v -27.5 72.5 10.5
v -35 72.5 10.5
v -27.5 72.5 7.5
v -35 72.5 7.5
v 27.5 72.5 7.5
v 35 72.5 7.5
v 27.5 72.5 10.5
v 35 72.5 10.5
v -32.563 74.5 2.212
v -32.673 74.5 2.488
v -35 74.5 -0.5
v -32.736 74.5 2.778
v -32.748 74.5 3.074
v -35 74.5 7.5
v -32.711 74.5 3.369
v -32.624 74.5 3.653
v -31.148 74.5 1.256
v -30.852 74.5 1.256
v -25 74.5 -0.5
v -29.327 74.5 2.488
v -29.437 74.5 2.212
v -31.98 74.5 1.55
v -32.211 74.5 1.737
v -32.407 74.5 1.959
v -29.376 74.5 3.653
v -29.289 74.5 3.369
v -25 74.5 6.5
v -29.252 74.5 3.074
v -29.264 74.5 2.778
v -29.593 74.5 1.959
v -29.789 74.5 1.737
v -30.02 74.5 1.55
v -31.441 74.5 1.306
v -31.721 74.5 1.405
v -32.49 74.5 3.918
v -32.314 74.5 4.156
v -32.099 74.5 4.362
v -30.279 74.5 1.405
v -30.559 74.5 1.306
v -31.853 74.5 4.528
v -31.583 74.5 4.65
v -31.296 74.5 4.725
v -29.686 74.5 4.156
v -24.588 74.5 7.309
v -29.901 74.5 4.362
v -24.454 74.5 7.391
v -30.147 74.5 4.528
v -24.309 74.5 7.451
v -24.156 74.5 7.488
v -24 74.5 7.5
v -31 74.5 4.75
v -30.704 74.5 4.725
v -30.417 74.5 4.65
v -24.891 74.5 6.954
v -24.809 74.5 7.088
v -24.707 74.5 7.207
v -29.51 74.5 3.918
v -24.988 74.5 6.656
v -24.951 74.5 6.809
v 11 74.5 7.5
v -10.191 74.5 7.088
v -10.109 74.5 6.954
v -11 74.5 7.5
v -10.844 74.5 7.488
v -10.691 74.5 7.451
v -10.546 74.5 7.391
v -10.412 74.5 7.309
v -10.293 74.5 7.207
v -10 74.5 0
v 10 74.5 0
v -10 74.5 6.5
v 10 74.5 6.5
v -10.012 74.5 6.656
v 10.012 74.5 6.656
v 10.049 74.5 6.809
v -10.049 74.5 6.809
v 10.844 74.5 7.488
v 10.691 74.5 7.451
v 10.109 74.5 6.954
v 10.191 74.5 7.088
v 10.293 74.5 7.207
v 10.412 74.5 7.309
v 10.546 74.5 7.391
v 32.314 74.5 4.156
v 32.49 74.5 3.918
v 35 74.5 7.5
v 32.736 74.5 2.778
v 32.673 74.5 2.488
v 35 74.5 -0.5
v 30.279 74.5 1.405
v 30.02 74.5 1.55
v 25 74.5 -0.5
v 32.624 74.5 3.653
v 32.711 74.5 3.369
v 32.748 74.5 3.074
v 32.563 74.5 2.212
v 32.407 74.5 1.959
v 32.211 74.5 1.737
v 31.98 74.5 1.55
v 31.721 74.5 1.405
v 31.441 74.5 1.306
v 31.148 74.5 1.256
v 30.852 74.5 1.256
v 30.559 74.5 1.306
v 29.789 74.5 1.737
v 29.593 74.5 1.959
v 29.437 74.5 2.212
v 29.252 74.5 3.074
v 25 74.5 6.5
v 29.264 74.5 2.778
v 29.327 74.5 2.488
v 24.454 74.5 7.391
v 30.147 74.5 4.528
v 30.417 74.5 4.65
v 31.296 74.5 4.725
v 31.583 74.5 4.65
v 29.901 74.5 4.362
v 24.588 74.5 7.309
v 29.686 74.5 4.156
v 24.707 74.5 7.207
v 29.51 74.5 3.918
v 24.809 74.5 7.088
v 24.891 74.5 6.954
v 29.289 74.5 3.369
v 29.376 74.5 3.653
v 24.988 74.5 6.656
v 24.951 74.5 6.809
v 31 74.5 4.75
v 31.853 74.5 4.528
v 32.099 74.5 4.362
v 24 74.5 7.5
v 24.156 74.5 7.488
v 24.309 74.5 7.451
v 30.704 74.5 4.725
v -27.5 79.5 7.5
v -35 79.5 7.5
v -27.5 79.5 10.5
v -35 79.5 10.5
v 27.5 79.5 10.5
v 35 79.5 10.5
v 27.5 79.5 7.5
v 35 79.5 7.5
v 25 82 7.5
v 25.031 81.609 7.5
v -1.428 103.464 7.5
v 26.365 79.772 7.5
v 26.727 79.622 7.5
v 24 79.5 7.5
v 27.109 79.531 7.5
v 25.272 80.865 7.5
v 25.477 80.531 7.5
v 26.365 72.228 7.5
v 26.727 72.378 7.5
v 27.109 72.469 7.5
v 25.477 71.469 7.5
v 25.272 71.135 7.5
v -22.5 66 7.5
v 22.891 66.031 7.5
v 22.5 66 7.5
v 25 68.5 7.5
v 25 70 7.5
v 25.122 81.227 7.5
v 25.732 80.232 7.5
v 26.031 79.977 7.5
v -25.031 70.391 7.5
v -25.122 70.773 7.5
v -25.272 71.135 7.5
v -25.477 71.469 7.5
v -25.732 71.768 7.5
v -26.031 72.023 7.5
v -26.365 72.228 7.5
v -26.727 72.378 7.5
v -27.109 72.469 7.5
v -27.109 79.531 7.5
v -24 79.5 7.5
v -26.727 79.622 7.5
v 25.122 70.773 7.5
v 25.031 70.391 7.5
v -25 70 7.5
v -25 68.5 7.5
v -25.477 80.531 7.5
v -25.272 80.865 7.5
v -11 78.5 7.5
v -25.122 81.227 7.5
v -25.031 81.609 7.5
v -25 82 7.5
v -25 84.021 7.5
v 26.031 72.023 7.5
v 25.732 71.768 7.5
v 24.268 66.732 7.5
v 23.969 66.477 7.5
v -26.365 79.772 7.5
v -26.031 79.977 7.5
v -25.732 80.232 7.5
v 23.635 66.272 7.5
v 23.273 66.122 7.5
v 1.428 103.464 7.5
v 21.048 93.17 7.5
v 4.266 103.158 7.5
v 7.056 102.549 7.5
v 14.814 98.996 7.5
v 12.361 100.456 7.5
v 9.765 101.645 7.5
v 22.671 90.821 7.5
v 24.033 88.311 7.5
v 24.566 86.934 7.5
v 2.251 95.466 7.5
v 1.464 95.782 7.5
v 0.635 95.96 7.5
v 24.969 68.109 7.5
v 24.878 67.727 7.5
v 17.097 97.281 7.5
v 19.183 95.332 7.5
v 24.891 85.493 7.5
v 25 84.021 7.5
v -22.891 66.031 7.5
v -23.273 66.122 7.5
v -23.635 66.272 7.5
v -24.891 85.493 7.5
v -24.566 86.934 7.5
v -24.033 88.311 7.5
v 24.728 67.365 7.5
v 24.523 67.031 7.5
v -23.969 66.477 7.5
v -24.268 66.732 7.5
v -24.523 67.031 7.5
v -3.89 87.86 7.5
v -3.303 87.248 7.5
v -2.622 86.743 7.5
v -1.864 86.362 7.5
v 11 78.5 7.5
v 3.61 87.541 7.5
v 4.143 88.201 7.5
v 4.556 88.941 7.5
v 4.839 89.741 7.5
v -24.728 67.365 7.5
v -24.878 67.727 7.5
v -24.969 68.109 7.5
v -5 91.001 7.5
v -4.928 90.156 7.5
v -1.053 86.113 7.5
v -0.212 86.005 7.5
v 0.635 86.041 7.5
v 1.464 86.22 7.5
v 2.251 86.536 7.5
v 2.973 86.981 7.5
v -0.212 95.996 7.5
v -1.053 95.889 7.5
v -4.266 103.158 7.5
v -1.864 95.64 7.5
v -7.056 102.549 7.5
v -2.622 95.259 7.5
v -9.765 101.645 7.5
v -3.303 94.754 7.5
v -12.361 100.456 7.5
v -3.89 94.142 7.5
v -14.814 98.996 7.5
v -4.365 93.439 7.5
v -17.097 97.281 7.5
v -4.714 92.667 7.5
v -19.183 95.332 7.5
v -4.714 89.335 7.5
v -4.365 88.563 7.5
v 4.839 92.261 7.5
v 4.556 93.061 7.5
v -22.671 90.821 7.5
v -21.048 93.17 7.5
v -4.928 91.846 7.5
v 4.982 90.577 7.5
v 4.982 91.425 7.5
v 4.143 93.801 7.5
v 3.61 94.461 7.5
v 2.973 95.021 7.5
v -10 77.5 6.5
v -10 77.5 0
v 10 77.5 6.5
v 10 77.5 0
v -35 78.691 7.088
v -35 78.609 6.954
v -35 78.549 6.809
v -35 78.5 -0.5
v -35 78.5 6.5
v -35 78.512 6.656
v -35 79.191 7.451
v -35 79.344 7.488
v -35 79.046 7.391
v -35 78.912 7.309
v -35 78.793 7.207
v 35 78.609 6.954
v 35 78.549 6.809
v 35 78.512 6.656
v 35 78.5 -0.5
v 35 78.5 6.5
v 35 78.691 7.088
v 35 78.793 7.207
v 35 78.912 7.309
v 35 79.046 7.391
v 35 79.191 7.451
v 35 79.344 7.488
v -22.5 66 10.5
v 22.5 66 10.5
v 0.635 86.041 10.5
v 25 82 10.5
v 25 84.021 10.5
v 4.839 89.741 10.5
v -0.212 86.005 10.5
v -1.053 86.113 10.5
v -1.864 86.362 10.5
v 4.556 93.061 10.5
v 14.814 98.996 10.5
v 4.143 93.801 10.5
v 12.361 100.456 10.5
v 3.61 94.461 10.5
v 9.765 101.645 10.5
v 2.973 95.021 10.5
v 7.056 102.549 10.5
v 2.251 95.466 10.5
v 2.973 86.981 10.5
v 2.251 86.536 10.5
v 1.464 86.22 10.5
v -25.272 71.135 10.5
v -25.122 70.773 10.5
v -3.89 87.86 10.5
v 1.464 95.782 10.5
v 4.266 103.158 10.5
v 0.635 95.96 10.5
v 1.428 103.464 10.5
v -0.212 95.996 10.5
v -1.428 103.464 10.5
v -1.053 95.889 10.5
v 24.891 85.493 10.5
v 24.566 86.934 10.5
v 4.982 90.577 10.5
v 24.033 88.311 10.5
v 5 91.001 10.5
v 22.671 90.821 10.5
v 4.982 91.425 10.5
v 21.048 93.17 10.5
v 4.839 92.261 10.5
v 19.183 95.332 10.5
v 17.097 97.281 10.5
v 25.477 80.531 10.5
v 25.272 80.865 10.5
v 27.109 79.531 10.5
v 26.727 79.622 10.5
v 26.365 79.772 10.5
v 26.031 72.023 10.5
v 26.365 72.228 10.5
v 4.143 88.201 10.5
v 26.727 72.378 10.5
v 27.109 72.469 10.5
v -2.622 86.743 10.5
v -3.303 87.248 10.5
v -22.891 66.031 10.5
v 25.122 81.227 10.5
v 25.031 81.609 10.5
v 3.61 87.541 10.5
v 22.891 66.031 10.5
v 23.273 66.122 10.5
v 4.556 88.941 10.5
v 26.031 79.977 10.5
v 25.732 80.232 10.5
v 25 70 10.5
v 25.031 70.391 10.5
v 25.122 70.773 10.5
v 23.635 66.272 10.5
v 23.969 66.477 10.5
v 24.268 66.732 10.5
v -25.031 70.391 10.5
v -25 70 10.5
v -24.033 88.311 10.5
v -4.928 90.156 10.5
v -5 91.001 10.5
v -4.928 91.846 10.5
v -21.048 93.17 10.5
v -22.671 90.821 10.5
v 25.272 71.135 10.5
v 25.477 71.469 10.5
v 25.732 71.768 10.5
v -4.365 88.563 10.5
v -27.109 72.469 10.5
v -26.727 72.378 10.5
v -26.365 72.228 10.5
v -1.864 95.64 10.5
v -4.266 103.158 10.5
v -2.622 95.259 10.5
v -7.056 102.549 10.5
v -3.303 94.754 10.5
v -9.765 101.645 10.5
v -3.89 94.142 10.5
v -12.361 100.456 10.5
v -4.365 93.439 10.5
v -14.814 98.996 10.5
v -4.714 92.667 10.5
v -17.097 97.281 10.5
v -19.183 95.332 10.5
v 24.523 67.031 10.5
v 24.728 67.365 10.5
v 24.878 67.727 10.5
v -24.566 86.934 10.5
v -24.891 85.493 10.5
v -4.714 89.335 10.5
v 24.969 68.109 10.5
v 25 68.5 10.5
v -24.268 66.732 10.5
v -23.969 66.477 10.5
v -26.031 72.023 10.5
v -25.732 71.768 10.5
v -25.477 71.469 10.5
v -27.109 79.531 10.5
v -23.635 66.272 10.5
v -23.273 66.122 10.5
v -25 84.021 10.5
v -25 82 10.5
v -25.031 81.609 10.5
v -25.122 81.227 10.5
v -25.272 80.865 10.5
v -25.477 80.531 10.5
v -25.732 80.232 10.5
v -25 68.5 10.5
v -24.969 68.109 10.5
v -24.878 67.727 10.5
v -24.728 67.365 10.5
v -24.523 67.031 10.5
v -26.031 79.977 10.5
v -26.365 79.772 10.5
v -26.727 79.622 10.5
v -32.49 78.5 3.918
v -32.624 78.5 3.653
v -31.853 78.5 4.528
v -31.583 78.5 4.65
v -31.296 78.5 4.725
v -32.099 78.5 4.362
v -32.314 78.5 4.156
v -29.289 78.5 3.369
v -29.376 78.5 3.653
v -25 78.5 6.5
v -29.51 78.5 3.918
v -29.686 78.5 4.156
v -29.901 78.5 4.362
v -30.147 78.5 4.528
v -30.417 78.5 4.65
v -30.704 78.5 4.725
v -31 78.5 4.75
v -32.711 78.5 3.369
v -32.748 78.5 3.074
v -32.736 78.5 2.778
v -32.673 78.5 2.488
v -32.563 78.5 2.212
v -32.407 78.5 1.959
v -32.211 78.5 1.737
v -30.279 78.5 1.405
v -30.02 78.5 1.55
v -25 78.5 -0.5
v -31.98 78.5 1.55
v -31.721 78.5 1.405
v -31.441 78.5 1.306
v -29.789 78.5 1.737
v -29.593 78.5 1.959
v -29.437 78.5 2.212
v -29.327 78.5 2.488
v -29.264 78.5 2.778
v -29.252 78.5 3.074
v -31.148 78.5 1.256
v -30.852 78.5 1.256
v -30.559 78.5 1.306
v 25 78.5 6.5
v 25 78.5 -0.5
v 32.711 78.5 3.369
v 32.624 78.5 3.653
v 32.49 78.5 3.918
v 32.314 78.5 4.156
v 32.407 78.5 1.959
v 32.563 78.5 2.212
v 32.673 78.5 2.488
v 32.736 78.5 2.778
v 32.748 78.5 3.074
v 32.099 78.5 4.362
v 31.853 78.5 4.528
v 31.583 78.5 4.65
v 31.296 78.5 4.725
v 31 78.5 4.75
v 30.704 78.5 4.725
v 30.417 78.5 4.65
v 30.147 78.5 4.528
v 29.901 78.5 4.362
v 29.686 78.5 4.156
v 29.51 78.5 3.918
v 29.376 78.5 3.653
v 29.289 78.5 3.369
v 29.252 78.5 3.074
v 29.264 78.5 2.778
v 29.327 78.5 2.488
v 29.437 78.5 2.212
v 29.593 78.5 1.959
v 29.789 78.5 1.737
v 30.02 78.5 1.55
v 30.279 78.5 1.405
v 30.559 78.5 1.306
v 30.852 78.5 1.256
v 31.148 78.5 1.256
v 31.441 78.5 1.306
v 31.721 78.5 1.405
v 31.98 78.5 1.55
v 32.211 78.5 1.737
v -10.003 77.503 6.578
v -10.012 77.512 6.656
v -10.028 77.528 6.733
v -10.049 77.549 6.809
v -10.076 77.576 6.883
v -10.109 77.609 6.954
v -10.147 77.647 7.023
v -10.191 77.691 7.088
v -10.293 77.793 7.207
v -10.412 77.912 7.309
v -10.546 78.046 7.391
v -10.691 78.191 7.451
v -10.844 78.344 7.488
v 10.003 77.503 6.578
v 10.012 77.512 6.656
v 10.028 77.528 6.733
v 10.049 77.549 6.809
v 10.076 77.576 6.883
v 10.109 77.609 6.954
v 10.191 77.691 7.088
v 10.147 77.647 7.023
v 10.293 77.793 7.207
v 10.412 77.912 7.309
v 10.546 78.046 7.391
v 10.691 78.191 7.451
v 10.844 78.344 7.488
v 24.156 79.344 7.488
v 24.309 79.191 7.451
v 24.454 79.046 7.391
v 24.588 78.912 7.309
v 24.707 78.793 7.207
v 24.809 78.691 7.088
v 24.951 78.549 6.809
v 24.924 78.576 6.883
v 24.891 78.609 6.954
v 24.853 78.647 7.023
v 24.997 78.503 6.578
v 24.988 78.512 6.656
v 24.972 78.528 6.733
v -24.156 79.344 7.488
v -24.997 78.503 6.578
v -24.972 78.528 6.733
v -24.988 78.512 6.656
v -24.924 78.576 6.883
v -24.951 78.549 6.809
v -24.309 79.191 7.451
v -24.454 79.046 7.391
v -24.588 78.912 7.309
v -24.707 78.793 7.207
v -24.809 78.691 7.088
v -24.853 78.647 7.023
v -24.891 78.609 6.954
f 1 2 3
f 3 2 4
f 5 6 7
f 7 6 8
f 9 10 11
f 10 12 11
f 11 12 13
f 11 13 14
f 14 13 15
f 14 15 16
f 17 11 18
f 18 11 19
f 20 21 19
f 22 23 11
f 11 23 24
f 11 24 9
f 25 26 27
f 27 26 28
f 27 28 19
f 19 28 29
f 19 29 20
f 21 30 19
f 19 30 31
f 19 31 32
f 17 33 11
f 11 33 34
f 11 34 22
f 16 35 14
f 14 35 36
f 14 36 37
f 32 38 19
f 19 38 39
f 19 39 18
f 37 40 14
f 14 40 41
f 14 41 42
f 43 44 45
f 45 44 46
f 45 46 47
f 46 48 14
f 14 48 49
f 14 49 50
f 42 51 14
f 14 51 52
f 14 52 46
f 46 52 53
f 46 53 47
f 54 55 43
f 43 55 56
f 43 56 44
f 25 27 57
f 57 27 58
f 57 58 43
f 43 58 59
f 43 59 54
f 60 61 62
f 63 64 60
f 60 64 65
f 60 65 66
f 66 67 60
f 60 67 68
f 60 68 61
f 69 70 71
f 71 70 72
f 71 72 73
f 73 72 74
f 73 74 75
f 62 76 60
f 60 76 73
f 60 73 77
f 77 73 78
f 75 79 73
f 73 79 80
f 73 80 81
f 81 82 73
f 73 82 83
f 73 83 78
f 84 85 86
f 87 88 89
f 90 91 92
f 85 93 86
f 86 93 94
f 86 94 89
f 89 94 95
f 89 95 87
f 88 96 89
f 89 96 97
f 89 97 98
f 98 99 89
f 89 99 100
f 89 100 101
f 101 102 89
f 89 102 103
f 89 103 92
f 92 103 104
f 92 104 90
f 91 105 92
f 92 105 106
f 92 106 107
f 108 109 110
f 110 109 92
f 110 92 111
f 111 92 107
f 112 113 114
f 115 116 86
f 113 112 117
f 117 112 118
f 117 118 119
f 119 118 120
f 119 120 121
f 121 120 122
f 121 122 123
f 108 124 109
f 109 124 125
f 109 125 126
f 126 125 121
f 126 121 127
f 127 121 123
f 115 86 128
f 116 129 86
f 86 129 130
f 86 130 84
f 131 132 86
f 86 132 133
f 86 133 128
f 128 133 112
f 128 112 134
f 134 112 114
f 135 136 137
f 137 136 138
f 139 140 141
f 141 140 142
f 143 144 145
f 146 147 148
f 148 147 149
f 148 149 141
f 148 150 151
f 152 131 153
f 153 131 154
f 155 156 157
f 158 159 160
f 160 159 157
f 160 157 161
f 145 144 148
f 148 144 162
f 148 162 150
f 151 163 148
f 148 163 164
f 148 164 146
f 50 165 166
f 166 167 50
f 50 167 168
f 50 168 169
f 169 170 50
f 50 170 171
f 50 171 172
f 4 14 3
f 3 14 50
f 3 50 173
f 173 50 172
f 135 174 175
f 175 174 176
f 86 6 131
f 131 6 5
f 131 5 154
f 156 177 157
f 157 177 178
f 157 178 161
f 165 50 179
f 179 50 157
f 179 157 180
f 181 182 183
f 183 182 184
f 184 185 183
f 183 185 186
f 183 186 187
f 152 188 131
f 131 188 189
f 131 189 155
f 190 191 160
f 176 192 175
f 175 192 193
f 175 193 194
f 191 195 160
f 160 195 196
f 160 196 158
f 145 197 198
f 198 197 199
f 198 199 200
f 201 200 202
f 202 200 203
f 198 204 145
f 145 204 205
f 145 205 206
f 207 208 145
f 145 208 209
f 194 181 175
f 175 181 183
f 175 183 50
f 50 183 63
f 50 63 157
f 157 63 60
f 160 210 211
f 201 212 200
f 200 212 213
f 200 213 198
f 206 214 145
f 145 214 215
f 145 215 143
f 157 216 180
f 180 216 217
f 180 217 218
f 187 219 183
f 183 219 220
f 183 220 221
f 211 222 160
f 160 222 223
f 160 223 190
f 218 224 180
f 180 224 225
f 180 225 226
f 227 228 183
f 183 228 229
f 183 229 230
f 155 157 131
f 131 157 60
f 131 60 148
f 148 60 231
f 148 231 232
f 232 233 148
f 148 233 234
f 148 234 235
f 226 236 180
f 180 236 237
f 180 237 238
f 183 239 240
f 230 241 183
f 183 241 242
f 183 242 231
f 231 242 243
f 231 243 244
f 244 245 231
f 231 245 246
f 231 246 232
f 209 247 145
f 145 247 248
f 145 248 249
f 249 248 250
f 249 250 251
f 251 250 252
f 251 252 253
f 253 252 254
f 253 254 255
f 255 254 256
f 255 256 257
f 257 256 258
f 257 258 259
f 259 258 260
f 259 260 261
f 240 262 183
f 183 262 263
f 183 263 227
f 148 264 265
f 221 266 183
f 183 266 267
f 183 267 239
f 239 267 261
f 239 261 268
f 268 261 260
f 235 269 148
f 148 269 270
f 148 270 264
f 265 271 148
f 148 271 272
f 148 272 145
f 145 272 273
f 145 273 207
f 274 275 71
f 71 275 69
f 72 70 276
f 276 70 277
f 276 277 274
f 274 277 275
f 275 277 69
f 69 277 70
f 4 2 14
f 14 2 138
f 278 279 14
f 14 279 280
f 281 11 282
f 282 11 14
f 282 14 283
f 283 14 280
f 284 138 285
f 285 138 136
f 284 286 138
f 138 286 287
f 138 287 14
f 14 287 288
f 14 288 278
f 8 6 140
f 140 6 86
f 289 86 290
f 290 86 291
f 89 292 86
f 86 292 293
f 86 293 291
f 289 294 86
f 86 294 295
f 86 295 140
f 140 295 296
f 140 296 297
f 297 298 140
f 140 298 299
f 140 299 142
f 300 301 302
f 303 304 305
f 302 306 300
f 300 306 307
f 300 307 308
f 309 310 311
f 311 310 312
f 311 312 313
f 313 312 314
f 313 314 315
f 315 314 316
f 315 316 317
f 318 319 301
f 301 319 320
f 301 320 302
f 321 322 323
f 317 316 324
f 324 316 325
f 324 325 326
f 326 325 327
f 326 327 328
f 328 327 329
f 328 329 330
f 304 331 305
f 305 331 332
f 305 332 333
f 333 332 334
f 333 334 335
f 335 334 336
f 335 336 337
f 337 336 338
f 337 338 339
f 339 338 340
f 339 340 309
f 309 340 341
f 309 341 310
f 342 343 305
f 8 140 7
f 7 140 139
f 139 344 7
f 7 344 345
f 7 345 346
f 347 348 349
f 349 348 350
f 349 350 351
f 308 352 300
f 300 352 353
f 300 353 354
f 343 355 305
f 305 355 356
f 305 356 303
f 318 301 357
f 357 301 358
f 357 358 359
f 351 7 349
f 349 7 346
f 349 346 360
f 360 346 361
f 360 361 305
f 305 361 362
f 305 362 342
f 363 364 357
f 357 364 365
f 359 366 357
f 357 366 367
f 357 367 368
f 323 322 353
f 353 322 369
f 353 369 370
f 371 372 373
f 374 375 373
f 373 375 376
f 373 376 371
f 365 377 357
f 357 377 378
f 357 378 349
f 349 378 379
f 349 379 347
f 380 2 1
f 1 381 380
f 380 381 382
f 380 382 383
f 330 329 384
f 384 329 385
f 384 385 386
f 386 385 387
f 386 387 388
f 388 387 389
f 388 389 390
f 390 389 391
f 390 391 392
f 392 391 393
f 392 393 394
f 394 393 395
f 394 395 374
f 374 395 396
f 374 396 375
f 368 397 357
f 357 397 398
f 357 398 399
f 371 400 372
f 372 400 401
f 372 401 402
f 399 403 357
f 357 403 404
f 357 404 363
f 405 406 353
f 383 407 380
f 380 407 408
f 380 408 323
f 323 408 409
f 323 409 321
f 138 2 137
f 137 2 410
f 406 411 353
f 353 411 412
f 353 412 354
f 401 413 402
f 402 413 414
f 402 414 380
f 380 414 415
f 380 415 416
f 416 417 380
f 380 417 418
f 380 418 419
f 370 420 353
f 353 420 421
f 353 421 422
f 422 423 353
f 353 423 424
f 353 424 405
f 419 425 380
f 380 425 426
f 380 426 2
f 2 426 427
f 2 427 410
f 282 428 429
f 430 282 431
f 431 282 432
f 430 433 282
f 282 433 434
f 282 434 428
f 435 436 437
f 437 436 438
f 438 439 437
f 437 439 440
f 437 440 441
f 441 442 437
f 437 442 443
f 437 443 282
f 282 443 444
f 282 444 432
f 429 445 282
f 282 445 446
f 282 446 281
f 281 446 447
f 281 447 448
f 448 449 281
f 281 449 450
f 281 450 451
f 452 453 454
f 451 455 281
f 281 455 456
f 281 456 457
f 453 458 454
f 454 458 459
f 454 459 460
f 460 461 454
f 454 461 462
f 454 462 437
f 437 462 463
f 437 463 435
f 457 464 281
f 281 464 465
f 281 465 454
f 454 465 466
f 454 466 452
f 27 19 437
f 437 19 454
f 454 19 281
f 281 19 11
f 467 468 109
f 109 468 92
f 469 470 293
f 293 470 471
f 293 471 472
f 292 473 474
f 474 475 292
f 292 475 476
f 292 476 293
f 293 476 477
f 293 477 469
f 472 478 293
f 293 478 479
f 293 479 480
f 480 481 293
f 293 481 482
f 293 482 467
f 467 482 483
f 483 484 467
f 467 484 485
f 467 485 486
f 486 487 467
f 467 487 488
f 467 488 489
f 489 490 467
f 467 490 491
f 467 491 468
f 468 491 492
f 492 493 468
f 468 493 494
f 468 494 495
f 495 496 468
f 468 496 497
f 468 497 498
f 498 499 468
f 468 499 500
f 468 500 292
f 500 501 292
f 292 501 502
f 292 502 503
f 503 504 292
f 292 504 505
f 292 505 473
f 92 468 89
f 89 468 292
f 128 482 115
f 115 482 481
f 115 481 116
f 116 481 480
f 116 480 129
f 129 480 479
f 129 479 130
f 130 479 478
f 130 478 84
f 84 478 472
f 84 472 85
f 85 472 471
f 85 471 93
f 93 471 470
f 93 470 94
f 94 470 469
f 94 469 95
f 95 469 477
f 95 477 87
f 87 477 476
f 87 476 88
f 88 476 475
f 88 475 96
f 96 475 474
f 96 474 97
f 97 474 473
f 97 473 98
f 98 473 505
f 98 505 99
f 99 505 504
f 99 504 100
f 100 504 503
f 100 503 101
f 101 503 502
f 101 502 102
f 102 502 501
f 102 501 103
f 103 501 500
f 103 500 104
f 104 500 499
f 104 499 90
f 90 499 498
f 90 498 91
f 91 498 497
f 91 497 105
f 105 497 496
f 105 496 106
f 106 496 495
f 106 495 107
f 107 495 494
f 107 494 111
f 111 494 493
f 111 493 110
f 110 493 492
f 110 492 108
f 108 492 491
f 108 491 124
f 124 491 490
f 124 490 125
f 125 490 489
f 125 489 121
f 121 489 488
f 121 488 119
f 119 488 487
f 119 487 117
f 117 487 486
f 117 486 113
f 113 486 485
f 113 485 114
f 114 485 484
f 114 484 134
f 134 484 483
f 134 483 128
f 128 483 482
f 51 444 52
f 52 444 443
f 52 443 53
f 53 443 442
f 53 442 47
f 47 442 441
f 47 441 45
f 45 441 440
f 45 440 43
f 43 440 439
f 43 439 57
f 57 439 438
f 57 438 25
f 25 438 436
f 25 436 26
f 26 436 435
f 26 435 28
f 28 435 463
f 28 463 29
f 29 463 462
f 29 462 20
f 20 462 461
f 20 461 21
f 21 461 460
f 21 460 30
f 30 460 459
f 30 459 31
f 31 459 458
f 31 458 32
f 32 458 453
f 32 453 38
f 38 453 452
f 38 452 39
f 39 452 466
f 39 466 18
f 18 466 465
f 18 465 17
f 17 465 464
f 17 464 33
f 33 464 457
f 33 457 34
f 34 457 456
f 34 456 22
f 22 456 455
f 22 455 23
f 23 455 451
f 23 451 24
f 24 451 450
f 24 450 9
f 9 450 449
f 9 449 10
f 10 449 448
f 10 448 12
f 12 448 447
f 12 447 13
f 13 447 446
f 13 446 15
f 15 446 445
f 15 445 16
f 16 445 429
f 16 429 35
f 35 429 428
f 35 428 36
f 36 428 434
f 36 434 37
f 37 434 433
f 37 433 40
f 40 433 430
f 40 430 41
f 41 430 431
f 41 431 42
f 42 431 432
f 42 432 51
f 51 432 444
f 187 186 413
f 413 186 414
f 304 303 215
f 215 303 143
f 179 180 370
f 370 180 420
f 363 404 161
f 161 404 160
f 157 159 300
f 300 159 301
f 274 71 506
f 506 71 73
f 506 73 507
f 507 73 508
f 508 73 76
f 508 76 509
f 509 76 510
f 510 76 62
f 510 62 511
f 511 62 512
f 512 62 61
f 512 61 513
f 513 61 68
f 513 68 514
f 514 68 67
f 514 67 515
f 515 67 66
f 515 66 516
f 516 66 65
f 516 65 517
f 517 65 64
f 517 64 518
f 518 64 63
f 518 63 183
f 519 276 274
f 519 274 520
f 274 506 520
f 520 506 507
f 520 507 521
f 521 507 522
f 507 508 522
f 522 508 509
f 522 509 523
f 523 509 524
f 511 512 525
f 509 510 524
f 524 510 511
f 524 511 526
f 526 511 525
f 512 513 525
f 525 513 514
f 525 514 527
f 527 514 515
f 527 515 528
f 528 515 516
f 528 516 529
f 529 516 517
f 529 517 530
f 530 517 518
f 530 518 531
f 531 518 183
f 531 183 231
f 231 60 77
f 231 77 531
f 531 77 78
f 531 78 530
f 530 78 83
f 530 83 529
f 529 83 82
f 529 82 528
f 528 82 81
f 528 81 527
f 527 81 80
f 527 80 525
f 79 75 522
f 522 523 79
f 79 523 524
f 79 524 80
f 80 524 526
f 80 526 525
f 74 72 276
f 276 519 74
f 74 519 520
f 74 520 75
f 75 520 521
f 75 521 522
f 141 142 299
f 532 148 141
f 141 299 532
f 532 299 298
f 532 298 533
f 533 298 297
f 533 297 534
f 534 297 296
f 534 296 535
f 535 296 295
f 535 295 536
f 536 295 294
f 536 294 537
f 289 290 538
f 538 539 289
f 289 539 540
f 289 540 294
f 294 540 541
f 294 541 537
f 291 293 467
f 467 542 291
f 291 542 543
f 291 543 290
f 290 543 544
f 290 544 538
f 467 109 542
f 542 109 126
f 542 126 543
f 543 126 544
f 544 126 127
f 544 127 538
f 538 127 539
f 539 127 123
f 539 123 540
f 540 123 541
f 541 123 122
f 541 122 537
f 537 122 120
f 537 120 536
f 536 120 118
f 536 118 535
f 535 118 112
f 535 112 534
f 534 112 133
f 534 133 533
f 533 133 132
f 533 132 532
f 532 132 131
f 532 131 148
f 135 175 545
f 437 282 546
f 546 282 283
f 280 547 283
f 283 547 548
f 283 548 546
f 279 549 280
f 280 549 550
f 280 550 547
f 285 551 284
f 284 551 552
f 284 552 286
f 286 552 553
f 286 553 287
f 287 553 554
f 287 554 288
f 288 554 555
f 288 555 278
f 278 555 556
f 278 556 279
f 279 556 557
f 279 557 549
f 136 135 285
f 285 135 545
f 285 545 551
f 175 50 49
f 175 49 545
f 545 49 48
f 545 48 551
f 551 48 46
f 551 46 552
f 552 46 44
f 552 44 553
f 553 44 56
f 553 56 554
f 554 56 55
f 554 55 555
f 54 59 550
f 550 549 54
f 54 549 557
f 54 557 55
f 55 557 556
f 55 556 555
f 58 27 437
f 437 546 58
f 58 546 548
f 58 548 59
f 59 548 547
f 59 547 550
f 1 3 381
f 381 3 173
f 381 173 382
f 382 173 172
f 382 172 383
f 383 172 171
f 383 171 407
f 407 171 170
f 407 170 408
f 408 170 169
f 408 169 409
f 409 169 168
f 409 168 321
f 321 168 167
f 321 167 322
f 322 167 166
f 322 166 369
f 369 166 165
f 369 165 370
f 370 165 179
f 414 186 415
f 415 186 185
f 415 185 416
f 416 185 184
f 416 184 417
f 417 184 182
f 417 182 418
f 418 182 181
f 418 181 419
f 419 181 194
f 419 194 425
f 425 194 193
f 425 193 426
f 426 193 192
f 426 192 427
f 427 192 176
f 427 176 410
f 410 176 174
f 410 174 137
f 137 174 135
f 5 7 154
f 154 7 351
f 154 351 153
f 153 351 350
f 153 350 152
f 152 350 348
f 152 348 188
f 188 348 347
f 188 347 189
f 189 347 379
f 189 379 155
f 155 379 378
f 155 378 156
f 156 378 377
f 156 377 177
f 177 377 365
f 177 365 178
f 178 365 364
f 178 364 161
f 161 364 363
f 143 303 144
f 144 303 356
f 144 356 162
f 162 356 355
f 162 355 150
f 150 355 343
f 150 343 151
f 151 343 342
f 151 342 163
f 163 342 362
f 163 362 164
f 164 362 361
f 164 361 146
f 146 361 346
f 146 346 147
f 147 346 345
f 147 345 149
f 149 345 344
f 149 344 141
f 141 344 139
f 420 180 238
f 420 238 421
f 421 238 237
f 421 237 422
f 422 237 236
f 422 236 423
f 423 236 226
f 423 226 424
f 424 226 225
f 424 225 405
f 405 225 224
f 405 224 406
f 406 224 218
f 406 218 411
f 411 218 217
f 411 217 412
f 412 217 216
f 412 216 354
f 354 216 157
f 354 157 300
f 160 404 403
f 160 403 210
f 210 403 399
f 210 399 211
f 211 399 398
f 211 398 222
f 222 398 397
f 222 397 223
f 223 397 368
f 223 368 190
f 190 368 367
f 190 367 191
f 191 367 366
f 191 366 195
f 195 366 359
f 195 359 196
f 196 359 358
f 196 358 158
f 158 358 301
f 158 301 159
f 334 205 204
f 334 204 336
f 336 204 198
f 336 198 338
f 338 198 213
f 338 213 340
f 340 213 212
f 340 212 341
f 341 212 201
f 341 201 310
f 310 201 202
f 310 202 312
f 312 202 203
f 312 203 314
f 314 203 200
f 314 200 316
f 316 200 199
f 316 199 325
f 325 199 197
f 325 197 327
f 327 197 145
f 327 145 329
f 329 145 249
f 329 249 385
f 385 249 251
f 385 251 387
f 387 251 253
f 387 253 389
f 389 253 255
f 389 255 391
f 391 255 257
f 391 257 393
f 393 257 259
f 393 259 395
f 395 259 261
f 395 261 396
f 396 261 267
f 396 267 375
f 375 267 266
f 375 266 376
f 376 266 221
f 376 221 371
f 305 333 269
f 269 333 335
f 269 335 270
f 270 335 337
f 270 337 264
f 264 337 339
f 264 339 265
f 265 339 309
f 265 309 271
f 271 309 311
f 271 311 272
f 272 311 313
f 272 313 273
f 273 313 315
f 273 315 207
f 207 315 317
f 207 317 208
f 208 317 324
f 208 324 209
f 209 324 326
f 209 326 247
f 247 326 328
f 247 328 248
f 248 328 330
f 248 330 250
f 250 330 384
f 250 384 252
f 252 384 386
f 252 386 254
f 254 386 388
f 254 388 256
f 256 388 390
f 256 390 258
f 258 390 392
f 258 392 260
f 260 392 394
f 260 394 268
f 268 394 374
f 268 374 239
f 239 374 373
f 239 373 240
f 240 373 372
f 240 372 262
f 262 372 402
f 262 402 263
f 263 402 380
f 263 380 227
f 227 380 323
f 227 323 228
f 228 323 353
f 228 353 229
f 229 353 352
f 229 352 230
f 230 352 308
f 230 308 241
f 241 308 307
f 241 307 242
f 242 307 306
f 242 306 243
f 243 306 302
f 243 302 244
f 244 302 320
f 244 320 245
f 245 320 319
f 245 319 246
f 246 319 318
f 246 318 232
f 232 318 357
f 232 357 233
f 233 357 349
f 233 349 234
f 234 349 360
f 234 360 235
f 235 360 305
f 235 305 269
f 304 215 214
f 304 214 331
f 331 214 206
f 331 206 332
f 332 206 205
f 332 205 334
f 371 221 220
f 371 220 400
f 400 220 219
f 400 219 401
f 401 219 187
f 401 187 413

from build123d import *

# Parameters (mm, degrees)
SKETCH1_W           = 20
SKETCH1_H           = 155
BOSS_EXTRUDE1_DEPTH = 4
SKETCH2_W           = 20
SKETCH2_H           = 4
BOSS_EXTRUDE3_DEPTH = 50
RIB2_REACH          = 96.986
SKETCH7_WALL_W      = 290.205463948
SKETCH7_WALL_H      = 4
SKETCH8_W           = 20
SKETCH8_H           = 3
BOSS_EXTRUDE4_DEPTH = 3.5
SKETCH9_W           = 70
SKETCH9_H           = 5
BOSS_EXTRUDE6_DEPTH = 3
SKETCH10_W          = 10
SKETCH10_H          = 4
BOSS_EXTRUDE7_DEPTH = 8
SKETCH12_R          = 1.75
CUT_EXTRUDE1_DEPTH  = 10
SKETCH13_W          = 111.319070758
SKETCH13_H          = 99.743885808
CUT_EXTRUDE2_DEPTH  = 152
SKETCH14_W          = 50
SKETCH14_H          = 3
BOSS_EXTRUDE8_DEPTH = 6.5
FILLET1_R           = 1
FILLET2_R           = 2.5
SKETCH15_R          = 5
BOSS_EXTRUDE9_DEPTH = 3
FILLET3_R           = 10


with BuildPart() as part:
    # Sketch1 → Boss-Extrude1 (new body)
    with BuildSketch(Plane.XY):
        Rectangle(SKETCH1_W, SKETCH1_H)
    extrude(amount=BOSS_EXTRUDE1_DEPTH)

    # Sketch2 → Boss-Extrude3 (add)
    with BuildSketch(Plane.XY.offset(4)):
        with Locations((0, -75.5)):
            Rectangle(SKETCH2_W, SKETCH2_H)
    extrude(amount=BOSS_EXTRUDE3_DEPTH)

    # Sketch7 wall → Rib2 (add, up to next)
    with BuildSketch(Plane(origin=(0, -26, 16.5), x_dir=(0, 0.967074537263, -0.25449329928), z_dir=(0, 0.25449329928, 0.967074537263)), mode=Mode.PRIVATE) as rib2_sk1:
        Rectangle(SKETCH7_WALL_W, SKETCH7_WALL_H)
    rib2_tool1 = extrude(rib2_sk1.sketch, amount=-RIB2_REACH, mode=Mode.PRIVATE) - part.part
    add(rib2_tool1.solids().sort_by_distance((0, -26, 16.5))[0])

    # Sketch8 → Boss-Extrude4 (add)
    with BuildSketch(Plane.XY.offset(4)):
        with Locations((0, 76)):
            Rectangle(SKETCH8_W, SKETCH8_H)
    extrude(amount=BOSS_EXTRUDE4_DEPTH)

    # Sketch9 → Boss-Extrude6 (add)
    with BuildSketch(Plane.XY.offset(7.5)):
        with Locations((0, 77)):
            Rectangle(SKETCH9_W, SKETCH9_H)
    boss_extrude6 = extrude(amount=BOSS_EXTRUDE6_DEPTH)

    # Sketch10 → Boss-Extrude7 (add)
    with BuildSketch(Plane(origin=(0, 0, 7.5), x_dir=(-1, 0, 0), z_dir=(0, 0, -1))):
        with Locations((30, 76.5)):
            Rectangle(SKETCH10_W, SKETCH10_H)
        with Locations((-30, 76.5)):
            Rectangle(SKETCH10_W, SKETCH10_H)
    extrude(amount=BOSS_EXTRUDE7_DEPTH)

    # Sketch12 → Cut-Extrude1 (cut)
    with BuildSketch(Plane(origin=(0, 78.5, 0), x_dir=(1, 0, 0), z_dir=(0, 1, 0))):
        with Locations(Location((-31, -3, 0), (0, 0, 270))):
            Circle(SKETCH12_R)
        with Locations(Location((31, -3, 0), (0, 0, 270))):
            Circle(SKETCH12_R)
    extrude(amount=-CUT_EXTRUDE1_DEPTH, mode=Mode.SUBTRACT)

    # Sketch13 → Cut-Extrude2 (cut)
    with BuildSketch(Plane.XZ.offset(77.5)):
        with Locations((2.652852139, 20.474703111)):
            Rectangle(SKETCH13_W, SKETCH13_H)
    extrude(amount=-CUT_EXTRUDE2_DEPTH, mode=Mode.SUBTRACT)

    # Sketch14 → Boss-Extrude8 (add)
    with BuildSketch(Plane(origin=(0, 79.5, 0), x_dir=(1, 0, 0), z_dir=(0, 1, 0))):
        with Locations((0, -9)):
            Rectangle(SKETCH14_W, SKETCH14_H)
    boss_extrude8 = extrude(amount=BOSS_EXTRUDE8_DEPTH)

    # Mirror1: Boss-Extrude6, Boss-Extrude8 across plane
    add(boss_extrude6.mirror(Plane(origin=(0, 76, 0), x_dir=(0, 0, 1), z_dir=(0, -1, 0))))
    add(boss_extrude8.mirror(Plane(origin=(0, 76, 0), x_dir=(0, 0, 1), z_dir=(0, -1, 0))))

    # Fillet1
    fillet1_edges = [part.edges().sort_by_distance(p)[0] for p in [
        (30, 78.5, 7.5),
        (-30, 78.5, 7.5),
        (10, 76, 7.5),
        (-10, 76, 7.5),
        (0, 77.5, 7.5),
        (25, 76.5, 7.5),
        (-25, 76.5, 7.5),
    ]]
    fillet(fillet1_edges, radius=FILLET1_R - 0.0001)  # a hair under: the kernel refuses the full size

    # Fillet2
    fillet2_edges = [part.edges().sort_by_distance(p)[0] for p in [
        (-25, 79.5, 9),
        (25, 79.5, 9),
        (-25, 66, 9),
        (25, 66, 9),
        (-25, 72.5, 9),
        (25, 72.5, 9),
    ]]
    fillet(fillet2_edges, radius=FILLET2_R)

    # Sketch15 → Boss-Extrude9 (add)
    with BuildSketch(Plane(origin=(0, 0, 7.5), x_dir=(-1, 0, 0), z_dir=(0, 0, -1))):
        with BuildLine():
            Line((25, 86), (-25, 86))
            ThreePointArc((-25, 86), (0, 103.502), (25, 86))
        make_face()
        with Locations((0, 91.001)):
            Circle(SKETCH15_R, mode=Mode.SUBTRACT)
    extrude(amount=-BOSS_EXTRUDE9_DEPTH)

    # Fillet3
    fillet3_edges = [part.edges().sort_by_distance(p)[0] for p in [
        (-25, 86, 9),
        (25, 86, 9),
    ]]
    fillet(fillet3_edges, radius=FILLET3_R)


solid = part.part
